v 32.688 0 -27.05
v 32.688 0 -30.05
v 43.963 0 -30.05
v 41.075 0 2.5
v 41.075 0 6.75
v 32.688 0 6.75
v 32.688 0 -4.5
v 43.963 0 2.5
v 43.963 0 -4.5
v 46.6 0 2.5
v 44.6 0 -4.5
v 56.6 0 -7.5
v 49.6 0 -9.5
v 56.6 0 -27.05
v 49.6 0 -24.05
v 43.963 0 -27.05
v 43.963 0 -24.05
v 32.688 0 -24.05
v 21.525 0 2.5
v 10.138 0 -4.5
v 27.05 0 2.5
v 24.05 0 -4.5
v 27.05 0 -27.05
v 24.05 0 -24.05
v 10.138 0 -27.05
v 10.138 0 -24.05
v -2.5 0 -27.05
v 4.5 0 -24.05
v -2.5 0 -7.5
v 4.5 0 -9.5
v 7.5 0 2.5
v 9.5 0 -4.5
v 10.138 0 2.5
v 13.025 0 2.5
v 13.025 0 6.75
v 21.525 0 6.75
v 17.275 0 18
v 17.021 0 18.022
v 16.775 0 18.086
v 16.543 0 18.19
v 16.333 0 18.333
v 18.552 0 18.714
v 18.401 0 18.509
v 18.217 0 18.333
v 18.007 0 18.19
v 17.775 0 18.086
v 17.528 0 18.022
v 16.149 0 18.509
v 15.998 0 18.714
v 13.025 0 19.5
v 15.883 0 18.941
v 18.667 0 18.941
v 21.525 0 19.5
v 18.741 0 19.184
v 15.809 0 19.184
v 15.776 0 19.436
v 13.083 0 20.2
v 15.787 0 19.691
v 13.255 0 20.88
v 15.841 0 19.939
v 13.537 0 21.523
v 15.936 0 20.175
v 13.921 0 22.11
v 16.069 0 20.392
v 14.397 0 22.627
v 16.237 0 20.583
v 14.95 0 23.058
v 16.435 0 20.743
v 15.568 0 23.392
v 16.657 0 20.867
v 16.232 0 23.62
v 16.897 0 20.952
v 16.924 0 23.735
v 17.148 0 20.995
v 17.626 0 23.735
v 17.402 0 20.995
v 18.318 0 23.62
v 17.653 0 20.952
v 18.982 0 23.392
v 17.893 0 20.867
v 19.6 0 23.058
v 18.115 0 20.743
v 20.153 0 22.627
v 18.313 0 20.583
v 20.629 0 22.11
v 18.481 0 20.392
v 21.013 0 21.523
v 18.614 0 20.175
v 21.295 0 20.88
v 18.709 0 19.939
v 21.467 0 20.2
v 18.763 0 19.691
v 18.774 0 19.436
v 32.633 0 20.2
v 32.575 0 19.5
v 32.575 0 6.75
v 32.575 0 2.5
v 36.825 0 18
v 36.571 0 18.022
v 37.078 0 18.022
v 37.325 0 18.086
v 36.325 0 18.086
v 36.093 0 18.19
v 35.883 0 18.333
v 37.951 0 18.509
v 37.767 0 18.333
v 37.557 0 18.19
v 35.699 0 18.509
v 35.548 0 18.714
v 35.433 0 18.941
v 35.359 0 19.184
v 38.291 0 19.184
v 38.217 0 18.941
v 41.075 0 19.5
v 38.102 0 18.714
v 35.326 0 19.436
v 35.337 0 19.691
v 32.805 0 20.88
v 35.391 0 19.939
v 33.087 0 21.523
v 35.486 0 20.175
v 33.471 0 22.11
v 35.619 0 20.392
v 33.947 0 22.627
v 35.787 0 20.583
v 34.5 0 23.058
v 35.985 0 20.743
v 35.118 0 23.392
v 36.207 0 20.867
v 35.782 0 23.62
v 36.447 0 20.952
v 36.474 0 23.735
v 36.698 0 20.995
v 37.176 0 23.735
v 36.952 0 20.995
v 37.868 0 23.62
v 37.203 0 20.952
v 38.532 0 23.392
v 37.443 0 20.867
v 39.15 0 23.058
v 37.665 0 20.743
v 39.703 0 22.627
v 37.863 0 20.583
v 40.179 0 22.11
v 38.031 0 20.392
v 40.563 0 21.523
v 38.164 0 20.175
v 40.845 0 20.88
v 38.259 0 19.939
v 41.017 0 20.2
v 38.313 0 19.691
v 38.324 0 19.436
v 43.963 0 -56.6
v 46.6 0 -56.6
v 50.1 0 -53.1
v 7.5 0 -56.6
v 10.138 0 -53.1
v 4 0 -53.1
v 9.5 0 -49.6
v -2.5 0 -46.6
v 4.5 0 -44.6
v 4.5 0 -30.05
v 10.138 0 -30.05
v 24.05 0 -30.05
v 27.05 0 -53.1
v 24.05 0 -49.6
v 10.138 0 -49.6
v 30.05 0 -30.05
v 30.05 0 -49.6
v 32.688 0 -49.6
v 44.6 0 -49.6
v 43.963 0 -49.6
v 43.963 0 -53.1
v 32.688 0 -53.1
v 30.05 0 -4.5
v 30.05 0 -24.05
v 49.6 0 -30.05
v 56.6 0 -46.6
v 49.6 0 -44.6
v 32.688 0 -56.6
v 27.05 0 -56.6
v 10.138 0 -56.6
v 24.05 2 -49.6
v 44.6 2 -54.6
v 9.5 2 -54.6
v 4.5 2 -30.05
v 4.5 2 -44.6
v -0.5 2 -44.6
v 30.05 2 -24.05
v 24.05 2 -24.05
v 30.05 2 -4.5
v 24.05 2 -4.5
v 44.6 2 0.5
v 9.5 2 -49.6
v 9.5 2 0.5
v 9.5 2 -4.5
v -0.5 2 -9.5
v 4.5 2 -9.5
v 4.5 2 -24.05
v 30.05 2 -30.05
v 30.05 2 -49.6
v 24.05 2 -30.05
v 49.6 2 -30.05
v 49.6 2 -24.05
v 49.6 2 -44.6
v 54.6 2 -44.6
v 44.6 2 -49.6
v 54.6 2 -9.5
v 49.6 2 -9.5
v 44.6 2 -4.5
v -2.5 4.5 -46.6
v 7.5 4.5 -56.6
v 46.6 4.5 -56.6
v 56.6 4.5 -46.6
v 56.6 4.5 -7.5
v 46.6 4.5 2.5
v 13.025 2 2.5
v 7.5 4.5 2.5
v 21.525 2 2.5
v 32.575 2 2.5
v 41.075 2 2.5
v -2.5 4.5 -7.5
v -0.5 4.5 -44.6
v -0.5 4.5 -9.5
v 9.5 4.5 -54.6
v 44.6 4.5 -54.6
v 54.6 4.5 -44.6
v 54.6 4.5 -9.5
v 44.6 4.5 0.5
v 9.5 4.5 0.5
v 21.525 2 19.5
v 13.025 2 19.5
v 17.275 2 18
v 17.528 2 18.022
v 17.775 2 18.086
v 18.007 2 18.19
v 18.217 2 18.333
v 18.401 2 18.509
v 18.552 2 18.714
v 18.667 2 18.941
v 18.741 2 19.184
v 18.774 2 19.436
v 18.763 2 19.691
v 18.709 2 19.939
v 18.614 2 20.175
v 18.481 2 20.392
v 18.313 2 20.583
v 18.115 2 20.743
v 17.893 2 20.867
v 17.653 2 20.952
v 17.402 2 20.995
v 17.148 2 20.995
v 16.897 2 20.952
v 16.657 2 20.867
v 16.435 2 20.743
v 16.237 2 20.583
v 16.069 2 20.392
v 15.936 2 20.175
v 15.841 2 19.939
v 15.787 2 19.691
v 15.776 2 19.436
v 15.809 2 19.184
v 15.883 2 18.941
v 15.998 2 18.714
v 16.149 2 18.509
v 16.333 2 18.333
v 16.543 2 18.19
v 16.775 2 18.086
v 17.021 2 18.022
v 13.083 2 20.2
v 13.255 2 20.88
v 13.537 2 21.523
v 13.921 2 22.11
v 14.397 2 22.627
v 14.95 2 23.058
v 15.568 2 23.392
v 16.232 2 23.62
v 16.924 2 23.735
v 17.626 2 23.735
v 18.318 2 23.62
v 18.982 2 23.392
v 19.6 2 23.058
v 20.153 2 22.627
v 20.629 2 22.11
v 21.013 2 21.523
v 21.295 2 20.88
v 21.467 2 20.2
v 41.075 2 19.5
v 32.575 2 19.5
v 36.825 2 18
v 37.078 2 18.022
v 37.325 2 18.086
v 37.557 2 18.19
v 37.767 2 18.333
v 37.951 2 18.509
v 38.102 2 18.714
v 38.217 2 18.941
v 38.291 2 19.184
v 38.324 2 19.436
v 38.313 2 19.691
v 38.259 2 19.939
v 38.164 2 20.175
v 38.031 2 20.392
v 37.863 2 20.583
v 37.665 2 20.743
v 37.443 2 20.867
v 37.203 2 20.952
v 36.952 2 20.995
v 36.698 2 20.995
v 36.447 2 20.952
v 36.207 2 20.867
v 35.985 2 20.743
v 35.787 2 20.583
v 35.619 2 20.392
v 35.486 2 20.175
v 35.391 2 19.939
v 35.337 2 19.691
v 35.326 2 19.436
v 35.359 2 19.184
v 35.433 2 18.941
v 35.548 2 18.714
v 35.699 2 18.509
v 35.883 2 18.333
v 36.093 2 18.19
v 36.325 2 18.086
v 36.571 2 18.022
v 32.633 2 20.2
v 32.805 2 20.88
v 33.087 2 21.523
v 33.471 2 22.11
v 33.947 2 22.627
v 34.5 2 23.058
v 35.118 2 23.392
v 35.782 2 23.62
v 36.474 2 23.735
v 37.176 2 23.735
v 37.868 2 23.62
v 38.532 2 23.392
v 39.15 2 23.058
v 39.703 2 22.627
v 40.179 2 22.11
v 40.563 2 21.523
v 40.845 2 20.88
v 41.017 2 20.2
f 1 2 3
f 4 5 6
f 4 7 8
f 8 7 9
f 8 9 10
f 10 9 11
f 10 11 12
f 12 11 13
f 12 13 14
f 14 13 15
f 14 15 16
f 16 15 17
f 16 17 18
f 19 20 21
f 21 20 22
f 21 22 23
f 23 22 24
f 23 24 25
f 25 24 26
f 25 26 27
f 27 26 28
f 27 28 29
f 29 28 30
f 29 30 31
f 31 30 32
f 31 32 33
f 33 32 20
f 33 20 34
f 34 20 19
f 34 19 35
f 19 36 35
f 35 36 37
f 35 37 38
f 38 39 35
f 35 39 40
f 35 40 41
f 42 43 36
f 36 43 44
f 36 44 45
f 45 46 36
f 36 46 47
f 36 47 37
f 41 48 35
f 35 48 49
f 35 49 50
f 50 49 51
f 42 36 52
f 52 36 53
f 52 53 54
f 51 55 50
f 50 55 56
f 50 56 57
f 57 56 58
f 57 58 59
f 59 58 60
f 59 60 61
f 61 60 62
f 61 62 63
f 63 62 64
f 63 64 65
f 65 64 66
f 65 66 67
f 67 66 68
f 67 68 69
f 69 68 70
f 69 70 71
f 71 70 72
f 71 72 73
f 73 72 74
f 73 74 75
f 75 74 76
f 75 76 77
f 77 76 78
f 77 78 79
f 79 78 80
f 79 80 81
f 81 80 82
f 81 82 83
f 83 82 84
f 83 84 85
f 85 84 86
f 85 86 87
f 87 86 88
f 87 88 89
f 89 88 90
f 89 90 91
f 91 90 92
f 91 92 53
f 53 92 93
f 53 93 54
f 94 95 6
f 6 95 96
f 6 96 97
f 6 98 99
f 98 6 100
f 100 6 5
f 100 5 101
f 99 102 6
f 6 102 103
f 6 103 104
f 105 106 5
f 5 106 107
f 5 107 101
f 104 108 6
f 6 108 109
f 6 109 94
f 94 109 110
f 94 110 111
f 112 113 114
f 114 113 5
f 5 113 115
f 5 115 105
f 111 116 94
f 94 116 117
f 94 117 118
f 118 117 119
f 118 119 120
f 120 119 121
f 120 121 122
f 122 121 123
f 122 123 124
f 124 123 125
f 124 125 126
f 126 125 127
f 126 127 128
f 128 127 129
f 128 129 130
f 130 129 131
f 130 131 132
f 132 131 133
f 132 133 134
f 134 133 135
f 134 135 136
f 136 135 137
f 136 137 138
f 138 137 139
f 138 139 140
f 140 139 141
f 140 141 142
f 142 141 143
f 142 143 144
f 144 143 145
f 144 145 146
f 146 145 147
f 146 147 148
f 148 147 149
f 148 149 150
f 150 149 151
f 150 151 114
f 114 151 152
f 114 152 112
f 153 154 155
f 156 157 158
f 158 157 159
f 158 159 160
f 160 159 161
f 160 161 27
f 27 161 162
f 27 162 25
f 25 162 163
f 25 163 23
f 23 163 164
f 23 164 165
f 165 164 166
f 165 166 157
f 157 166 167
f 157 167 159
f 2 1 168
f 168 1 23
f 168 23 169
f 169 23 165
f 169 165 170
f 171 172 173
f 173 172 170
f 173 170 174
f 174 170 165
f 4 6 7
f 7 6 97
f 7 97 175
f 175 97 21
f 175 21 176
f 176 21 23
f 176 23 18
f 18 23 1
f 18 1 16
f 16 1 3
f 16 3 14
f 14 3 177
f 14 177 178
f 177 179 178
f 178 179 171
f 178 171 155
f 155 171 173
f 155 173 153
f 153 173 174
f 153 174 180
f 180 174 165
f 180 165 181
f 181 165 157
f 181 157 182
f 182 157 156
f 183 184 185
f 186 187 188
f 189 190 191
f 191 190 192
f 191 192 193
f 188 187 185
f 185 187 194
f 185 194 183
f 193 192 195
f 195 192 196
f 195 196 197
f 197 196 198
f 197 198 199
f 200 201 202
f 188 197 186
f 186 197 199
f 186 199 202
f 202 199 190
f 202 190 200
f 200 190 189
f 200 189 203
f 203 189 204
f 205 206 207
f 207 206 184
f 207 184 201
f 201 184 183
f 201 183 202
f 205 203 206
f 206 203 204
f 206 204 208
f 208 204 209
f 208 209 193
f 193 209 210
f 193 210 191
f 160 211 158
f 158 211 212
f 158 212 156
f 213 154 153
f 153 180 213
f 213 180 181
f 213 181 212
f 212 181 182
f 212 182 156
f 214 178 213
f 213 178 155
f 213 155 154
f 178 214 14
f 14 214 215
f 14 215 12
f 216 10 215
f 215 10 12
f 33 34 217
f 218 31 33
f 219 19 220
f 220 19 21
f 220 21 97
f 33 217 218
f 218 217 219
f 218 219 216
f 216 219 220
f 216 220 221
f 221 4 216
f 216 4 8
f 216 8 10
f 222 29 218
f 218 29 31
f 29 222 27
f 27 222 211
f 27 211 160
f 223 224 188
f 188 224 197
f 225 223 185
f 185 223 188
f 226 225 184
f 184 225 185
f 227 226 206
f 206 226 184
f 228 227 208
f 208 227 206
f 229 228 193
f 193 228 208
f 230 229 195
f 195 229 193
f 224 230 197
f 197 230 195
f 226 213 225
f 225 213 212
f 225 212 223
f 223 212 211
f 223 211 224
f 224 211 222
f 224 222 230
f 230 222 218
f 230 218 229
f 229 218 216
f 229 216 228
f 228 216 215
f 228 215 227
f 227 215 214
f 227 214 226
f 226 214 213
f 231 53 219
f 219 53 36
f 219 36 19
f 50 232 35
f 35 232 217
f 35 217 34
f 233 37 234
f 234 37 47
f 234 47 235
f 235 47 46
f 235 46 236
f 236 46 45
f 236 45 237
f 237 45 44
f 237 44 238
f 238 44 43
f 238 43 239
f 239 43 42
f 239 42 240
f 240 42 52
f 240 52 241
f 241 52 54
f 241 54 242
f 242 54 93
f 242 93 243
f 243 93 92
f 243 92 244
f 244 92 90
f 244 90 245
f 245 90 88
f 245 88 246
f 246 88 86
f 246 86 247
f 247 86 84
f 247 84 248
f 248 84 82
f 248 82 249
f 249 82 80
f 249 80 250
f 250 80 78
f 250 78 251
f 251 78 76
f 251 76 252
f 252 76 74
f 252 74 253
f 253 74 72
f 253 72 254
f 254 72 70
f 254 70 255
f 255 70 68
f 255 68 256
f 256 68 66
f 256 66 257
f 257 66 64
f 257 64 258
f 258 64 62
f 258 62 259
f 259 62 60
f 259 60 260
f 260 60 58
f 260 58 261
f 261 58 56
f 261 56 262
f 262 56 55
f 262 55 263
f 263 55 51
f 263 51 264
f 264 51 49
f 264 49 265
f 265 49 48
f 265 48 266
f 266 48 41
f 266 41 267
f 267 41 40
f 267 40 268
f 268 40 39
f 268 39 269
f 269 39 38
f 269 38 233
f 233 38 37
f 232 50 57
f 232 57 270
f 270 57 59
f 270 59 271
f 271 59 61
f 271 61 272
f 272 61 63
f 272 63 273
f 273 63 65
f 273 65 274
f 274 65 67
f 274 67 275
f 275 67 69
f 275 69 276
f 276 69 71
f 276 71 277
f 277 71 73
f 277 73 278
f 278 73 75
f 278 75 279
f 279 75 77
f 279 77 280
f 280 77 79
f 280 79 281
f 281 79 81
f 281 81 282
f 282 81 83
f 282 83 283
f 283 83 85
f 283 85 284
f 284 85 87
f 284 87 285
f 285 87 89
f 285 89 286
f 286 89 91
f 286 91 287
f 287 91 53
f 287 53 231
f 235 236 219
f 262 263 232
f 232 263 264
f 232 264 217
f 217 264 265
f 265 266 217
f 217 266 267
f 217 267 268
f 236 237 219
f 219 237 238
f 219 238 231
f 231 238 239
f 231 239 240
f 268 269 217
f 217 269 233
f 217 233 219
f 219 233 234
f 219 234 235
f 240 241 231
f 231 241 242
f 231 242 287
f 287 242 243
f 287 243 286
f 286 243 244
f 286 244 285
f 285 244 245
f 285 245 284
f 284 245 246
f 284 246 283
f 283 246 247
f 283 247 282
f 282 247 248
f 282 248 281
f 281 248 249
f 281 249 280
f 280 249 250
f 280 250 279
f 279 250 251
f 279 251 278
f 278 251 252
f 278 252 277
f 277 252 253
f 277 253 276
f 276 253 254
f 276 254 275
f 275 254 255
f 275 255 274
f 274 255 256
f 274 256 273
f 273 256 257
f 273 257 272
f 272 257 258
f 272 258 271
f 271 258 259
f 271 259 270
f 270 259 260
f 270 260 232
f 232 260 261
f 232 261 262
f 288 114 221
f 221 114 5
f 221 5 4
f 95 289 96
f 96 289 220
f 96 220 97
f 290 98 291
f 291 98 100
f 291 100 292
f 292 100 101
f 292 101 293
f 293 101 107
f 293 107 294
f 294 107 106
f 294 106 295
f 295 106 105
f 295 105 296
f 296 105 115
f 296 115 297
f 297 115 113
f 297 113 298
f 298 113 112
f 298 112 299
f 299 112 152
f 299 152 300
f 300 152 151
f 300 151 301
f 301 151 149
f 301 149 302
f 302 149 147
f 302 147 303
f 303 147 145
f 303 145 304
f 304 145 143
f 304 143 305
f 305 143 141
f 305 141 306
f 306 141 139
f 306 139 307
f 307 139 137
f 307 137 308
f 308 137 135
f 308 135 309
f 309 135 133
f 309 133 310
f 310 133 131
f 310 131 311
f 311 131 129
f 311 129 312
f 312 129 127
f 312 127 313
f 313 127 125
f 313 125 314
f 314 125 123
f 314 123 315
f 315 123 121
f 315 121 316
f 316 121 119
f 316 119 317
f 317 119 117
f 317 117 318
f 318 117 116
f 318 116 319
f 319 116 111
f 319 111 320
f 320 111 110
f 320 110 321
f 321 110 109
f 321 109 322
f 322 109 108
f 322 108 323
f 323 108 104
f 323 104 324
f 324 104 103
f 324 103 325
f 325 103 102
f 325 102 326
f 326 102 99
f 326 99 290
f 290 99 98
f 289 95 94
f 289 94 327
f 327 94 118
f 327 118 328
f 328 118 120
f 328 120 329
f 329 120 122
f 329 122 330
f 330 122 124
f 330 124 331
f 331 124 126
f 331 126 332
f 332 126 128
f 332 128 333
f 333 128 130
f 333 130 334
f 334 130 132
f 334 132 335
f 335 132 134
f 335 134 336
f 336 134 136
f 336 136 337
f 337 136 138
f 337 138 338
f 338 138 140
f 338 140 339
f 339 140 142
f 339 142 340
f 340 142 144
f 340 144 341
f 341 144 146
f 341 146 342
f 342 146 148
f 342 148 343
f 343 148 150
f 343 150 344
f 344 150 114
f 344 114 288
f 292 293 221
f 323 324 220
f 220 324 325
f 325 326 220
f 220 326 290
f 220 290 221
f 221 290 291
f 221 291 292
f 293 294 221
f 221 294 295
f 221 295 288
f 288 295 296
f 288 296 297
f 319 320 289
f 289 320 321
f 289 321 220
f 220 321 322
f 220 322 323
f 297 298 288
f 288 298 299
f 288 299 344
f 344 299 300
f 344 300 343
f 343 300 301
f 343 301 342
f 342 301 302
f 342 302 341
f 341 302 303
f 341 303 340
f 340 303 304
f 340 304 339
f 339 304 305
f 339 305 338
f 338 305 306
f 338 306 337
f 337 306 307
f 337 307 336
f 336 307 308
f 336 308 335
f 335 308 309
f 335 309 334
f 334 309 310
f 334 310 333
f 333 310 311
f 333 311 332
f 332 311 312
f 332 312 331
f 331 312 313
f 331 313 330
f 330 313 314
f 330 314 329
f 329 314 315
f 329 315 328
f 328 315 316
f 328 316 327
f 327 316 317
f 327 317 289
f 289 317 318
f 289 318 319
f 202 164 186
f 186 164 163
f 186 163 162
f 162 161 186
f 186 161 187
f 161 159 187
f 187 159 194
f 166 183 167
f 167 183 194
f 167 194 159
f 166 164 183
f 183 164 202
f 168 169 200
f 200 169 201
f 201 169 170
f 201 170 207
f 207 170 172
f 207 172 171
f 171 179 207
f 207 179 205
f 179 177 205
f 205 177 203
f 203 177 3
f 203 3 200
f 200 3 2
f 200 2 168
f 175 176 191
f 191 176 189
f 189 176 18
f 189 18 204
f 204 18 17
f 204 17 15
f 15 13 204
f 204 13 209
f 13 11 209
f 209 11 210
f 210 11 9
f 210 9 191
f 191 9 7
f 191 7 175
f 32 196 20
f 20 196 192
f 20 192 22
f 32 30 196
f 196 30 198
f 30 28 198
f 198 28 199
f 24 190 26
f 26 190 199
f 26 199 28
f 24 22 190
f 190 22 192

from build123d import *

# Parameters (mm, degrees)
SALIENTE_EXTRUIR1_DEPTH      = 2
SALIENTE_EXTRUIR3_DEPTH      = 2.5
SALIENTE_EXTRUIR3_DEPTH_BACK = 2
CROQUIS4_R                   = 1.5
SALIENTE_EXTRUIR4_DEPTH      = 2
CORTAR_EXTRUIR1_DEPTH        = 2


with BuildPart() as part:
    # Croquis1 → Saliente-Extruir1 (new body)
    with BuildSketch(Plane(origin=(0, 0, 0), x_dir=(1, 0, 0), z_dir=(0, 1, 0))):
        Polygon((-0.5, 44.6), (-0.5, 9.5), (9.5, -0.5), (44.6, -0.5), (54.6, 9.5), (54.6, 44.6), (44.6, 54.6), (9.5, 54.6), align=None)
    extrude(amount=SALIENTE_EXTRUIR1_DEPTH)

    # Croquis2 → Saliente-Extruir3 (add, two sides: drawn at the far end of the back side and taken through both)
    with BuildSketch(Plane(origin=(0, 2, 0), x_dir=(1, 0, 0), z_dir=(0, 1, 0)).offset(-SALIENTE_EXTRUIR3_DEPTH_BACK)):
        Polygon((7.5, 56.6), (-2.5, 46.6), (-2.5, 7.5), (7.5, -2.5), (46.6, -2.5), (56.6, 7.5), (56.6, 46.6), (46.6, 56.6), align=None)
        Polygon((9.5, 54.6), (44.6, 54.6), (54.6, 44.6), (54.6, 9.5), (44.6, -0.5), (9.5, -0.5), (-0.5, 9.5), (-0.5, 44.6), align=None, mode=Mode.SUBTRACT)
    extrude(amount=SALIENTE_EXTRUIR3_DEPTH + SALIENTE_EXTRUIR3_DEPTH_BACK)

    # Croquis4 → Saliente-Extruir4 (add)
    # profile 1 of 2: a face of its own
    with BuildSketch(Plane.XZ):
        with BuildLine():
            Line((13.025, 2.5), (21.525, 2.5))
            Line((21.525, 2.5), (21.525, 19.5))
            ThreePointArc((21.525, 19.5), (17.275, 23.75), (13.025, 19.5))
            Line((13.025, 19.5), (13.025, 2.5))
        make_face()
        with Locations((17.275, 19.5)):
            Circle(CROQUIS4_R, mode=Mode.SUBTRACT)
    # profile 2 of 2: a face of its own
    with BuildSketch(Plane.XZ):
        with BuildLine():
            Line((32.575, 19.5), (32.575, 2.5))
            Line((32.575, 2.5), (41.075, 2.5))
            Line((41.075, 2.5), (41.075, 19.5))
            ThreePointArc((41.075, 19.5), (36.825, 23.75), (32.575, 19.5))
        make_face()
        with Locations((36.825, 19.5)):
            Circle(CROQUIS4_R, mode=Mode.SUBTRACT)
    extrude(amount=-SALIENTE_EXTRUIR4_DEPTH)

    # Croquis6 → Cortar-Extruir1 (cut)
    with BuildSketch(Plane(origin=(0, 2, 0), x_dir=(1, 0, 0), z_dir=(0, 1, 0))):
        Polygon((9.5, 49.6), (4.5, 44.6), (4.5, 30.05), (24.05, 30.05), (24.05, 49.6), align=None)
        Polygon((4.5, 24.05), (4.5, 9.5), (9.5, 4.5), (24.05, 4.5), (24.05, 24.05), align=None)
        Polygon((30.05, 4.5), (44.6, 4.5), (49.6, 9.5), (49.6, 24.05), (30.05, 24.05), align=None)
        Polygon((49.6, 30.05), (49.6, 44.6), (44.6, 49.6), (30.05, 49.6), (30.05, 30.05), align=None)
    extrude(amount=-CORTAR_EXTRUIR1_DEPTH, mode=Mode.SUBTRACT)


solid = part.part
